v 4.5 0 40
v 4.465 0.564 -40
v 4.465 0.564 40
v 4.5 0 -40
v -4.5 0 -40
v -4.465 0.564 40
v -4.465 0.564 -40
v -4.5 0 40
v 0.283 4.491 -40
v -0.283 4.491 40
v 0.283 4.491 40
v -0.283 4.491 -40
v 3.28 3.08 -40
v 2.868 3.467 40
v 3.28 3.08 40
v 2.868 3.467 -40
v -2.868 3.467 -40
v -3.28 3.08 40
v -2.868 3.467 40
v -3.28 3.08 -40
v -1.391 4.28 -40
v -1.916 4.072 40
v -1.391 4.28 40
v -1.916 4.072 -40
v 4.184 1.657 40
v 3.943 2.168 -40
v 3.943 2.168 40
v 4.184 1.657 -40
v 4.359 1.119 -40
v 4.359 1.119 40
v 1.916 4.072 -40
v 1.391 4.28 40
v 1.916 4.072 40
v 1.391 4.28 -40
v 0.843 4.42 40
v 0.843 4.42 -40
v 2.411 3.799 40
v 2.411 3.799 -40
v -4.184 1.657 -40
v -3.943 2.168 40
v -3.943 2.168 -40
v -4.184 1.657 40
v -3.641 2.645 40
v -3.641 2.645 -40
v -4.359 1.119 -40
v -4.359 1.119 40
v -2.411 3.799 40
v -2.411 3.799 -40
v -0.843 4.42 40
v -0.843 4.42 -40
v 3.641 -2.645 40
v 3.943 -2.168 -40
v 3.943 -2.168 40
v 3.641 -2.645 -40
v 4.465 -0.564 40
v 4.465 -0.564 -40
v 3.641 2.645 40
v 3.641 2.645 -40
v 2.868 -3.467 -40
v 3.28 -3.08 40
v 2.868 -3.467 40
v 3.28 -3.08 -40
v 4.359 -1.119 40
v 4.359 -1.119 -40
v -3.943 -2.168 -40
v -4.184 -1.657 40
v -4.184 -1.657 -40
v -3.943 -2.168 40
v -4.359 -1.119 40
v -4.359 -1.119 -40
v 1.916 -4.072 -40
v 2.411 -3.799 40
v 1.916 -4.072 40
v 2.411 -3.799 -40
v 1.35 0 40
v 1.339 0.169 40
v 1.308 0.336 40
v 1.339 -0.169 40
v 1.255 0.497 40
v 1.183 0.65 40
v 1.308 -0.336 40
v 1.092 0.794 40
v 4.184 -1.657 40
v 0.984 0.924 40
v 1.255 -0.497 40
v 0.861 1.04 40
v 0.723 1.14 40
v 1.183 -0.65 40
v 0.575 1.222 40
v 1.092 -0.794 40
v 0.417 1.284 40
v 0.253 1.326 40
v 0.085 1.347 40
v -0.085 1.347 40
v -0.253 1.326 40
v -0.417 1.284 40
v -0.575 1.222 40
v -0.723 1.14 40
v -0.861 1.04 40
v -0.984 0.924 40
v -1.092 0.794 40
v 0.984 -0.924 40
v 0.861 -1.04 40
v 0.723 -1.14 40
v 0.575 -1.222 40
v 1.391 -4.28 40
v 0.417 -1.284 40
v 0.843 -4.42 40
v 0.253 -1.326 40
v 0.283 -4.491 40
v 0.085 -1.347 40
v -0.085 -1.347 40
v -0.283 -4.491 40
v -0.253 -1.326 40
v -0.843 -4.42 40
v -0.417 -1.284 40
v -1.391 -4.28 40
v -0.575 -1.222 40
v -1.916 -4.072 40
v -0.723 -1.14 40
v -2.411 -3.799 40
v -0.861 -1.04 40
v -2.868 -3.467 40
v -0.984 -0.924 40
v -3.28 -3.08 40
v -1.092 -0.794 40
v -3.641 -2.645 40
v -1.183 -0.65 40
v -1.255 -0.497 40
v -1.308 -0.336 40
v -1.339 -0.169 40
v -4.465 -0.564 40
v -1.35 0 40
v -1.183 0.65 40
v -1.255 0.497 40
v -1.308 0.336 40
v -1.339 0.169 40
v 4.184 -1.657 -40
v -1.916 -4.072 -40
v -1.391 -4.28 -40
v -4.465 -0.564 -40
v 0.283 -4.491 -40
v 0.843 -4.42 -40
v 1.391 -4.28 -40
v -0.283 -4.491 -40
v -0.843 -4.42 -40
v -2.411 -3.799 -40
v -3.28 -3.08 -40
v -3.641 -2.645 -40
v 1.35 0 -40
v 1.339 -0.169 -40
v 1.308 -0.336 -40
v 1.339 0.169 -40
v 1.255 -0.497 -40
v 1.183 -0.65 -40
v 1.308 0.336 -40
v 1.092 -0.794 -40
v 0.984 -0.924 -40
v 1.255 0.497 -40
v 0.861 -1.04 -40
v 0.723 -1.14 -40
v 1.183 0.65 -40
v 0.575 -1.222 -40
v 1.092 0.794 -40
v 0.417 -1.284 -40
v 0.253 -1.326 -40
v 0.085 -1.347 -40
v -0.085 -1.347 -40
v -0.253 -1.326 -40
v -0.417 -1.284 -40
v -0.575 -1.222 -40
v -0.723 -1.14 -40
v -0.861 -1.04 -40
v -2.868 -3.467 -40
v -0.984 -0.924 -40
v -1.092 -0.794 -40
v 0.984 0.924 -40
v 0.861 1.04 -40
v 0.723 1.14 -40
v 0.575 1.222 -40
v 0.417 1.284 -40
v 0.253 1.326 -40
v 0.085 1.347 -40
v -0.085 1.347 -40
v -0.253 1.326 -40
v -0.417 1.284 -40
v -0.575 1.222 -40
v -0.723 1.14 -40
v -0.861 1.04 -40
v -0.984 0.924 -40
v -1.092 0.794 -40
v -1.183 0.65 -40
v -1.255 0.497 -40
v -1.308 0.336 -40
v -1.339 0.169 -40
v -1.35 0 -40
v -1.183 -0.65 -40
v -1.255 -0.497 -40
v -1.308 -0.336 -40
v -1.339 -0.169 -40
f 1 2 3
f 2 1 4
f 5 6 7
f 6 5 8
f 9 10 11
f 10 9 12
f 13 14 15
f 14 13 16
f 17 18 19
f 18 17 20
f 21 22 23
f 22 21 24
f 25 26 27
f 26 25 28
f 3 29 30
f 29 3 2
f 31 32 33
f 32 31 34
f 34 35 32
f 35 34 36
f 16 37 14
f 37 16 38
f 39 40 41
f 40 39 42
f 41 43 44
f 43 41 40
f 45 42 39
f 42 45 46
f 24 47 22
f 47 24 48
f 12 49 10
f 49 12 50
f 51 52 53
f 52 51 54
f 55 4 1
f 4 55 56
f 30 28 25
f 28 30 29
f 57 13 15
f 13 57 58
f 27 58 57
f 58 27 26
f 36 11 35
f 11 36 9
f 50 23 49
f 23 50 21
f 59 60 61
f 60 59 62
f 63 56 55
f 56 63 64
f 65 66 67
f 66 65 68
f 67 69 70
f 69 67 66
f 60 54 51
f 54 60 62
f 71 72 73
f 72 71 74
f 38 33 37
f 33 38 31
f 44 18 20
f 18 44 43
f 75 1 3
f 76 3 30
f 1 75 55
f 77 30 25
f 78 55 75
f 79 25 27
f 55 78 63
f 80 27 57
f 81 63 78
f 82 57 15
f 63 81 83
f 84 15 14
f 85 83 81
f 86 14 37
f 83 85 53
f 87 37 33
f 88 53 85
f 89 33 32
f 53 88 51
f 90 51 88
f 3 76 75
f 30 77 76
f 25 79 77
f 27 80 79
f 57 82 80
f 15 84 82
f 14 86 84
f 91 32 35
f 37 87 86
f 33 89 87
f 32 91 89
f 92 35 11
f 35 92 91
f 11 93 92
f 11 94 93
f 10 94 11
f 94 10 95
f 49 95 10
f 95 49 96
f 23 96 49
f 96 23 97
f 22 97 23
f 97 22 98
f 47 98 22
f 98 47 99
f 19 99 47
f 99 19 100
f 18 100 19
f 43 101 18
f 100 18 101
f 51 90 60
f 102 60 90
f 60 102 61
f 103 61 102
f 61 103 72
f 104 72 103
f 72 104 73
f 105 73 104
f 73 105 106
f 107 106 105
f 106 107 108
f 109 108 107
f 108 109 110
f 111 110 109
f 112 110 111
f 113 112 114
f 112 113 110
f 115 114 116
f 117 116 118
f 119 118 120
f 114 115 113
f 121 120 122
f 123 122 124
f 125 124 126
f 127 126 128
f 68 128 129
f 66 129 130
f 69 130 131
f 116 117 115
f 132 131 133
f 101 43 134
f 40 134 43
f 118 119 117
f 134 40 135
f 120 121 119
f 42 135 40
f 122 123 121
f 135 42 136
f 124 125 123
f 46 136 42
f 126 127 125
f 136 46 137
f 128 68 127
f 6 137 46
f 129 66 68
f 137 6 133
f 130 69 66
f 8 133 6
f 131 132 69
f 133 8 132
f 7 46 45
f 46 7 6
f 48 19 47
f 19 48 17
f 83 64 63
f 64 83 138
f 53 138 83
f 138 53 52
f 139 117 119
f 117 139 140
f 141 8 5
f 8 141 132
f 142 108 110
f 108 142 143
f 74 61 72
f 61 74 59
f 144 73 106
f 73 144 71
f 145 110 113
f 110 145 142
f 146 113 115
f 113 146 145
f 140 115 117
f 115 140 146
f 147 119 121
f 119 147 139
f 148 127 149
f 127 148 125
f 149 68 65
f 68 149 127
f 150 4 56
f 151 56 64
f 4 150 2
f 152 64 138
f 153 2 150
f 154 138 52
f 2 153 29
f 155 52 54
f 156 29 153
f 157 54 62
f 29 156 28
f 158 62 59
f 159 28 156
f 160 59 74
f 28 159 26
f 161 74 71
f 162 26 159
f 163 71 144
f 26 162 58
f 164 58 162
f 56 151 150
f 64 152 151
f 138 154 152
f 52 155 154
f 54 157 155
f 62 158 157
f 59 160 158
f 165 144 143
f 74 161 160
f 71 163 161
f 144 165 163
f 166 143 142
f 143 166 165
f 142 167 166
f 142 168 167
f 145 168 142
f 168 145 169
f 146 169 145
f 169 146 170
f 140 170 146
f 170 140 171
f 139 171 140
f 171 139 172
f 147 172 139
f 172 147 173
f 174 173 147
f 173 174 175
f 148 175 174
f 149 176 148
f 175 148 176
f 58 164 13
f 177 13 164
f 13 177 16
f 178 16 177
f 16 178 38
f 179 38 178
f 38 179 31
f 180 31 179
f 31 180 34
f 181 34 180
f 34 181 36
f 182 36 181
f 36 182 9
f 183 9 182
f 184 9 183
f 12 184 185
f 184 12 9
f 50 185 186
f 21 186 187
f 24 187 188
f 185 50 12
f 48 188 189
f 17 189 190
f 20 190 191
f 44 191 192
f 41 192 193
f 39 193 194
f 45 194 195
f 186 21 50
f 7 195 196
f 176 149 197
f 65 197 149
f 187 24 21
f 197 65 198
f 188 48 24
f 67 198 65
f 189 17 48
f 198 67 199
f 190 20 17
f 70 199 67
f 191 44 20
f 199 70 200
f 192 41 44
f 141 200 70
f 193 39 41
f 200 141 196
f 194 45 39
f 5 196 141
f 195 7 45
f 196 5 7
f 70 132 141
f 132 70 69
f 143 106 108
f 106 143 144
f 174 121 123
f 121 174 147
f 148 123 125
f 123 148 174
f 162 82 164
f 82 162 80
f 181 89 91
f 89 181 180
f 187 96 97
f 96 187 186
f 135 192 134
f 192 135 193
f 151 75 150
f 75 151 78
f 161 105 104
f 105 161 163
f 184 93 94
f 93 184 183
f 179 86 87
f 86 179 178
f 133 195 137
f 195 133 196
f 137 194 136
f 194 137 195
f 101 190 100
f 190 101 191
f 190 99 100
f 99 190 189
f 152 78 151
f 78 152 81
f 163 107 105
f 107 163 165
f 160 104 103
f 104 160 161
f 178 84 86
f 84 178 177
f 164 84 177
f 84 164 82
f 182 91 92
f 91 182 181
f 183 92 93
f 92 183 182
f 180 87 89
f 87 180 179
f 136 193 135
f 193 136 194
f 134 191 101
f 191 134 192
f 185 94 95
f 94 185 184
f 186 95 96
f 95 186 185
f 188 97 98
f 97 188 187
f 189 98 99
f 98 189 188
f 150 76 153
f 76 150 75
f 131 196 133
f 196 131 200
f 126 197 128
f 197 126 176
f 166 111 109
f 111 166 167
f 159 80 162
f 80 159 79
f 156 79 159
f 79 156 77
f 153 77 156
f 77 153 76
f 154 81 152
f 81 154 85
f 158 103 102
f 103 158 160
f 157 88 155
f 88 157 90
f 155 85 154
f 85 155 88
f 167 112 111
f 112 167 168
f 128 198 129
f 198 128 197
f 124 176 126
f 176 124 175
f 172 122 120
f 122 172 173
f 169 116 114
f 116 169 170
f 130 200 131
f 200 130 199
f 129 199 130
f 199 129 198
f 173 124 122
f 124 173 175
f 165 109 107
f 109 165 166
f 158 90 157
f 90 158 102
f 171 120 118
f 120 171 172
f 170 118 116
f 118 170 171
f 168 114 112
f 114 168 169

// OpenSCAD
$fn = 50;


difference() {
	union() {
		translate(v = [0, 0, -40.0000000000]) {
			cylinder(h = 80, r = 4.5000000000);
		}
	}
	union() {
		translate(v = [0, 0, -100.0000000000]) {
			cylinder(h = 200, r = 1.3500000000);
		}
	}
}
